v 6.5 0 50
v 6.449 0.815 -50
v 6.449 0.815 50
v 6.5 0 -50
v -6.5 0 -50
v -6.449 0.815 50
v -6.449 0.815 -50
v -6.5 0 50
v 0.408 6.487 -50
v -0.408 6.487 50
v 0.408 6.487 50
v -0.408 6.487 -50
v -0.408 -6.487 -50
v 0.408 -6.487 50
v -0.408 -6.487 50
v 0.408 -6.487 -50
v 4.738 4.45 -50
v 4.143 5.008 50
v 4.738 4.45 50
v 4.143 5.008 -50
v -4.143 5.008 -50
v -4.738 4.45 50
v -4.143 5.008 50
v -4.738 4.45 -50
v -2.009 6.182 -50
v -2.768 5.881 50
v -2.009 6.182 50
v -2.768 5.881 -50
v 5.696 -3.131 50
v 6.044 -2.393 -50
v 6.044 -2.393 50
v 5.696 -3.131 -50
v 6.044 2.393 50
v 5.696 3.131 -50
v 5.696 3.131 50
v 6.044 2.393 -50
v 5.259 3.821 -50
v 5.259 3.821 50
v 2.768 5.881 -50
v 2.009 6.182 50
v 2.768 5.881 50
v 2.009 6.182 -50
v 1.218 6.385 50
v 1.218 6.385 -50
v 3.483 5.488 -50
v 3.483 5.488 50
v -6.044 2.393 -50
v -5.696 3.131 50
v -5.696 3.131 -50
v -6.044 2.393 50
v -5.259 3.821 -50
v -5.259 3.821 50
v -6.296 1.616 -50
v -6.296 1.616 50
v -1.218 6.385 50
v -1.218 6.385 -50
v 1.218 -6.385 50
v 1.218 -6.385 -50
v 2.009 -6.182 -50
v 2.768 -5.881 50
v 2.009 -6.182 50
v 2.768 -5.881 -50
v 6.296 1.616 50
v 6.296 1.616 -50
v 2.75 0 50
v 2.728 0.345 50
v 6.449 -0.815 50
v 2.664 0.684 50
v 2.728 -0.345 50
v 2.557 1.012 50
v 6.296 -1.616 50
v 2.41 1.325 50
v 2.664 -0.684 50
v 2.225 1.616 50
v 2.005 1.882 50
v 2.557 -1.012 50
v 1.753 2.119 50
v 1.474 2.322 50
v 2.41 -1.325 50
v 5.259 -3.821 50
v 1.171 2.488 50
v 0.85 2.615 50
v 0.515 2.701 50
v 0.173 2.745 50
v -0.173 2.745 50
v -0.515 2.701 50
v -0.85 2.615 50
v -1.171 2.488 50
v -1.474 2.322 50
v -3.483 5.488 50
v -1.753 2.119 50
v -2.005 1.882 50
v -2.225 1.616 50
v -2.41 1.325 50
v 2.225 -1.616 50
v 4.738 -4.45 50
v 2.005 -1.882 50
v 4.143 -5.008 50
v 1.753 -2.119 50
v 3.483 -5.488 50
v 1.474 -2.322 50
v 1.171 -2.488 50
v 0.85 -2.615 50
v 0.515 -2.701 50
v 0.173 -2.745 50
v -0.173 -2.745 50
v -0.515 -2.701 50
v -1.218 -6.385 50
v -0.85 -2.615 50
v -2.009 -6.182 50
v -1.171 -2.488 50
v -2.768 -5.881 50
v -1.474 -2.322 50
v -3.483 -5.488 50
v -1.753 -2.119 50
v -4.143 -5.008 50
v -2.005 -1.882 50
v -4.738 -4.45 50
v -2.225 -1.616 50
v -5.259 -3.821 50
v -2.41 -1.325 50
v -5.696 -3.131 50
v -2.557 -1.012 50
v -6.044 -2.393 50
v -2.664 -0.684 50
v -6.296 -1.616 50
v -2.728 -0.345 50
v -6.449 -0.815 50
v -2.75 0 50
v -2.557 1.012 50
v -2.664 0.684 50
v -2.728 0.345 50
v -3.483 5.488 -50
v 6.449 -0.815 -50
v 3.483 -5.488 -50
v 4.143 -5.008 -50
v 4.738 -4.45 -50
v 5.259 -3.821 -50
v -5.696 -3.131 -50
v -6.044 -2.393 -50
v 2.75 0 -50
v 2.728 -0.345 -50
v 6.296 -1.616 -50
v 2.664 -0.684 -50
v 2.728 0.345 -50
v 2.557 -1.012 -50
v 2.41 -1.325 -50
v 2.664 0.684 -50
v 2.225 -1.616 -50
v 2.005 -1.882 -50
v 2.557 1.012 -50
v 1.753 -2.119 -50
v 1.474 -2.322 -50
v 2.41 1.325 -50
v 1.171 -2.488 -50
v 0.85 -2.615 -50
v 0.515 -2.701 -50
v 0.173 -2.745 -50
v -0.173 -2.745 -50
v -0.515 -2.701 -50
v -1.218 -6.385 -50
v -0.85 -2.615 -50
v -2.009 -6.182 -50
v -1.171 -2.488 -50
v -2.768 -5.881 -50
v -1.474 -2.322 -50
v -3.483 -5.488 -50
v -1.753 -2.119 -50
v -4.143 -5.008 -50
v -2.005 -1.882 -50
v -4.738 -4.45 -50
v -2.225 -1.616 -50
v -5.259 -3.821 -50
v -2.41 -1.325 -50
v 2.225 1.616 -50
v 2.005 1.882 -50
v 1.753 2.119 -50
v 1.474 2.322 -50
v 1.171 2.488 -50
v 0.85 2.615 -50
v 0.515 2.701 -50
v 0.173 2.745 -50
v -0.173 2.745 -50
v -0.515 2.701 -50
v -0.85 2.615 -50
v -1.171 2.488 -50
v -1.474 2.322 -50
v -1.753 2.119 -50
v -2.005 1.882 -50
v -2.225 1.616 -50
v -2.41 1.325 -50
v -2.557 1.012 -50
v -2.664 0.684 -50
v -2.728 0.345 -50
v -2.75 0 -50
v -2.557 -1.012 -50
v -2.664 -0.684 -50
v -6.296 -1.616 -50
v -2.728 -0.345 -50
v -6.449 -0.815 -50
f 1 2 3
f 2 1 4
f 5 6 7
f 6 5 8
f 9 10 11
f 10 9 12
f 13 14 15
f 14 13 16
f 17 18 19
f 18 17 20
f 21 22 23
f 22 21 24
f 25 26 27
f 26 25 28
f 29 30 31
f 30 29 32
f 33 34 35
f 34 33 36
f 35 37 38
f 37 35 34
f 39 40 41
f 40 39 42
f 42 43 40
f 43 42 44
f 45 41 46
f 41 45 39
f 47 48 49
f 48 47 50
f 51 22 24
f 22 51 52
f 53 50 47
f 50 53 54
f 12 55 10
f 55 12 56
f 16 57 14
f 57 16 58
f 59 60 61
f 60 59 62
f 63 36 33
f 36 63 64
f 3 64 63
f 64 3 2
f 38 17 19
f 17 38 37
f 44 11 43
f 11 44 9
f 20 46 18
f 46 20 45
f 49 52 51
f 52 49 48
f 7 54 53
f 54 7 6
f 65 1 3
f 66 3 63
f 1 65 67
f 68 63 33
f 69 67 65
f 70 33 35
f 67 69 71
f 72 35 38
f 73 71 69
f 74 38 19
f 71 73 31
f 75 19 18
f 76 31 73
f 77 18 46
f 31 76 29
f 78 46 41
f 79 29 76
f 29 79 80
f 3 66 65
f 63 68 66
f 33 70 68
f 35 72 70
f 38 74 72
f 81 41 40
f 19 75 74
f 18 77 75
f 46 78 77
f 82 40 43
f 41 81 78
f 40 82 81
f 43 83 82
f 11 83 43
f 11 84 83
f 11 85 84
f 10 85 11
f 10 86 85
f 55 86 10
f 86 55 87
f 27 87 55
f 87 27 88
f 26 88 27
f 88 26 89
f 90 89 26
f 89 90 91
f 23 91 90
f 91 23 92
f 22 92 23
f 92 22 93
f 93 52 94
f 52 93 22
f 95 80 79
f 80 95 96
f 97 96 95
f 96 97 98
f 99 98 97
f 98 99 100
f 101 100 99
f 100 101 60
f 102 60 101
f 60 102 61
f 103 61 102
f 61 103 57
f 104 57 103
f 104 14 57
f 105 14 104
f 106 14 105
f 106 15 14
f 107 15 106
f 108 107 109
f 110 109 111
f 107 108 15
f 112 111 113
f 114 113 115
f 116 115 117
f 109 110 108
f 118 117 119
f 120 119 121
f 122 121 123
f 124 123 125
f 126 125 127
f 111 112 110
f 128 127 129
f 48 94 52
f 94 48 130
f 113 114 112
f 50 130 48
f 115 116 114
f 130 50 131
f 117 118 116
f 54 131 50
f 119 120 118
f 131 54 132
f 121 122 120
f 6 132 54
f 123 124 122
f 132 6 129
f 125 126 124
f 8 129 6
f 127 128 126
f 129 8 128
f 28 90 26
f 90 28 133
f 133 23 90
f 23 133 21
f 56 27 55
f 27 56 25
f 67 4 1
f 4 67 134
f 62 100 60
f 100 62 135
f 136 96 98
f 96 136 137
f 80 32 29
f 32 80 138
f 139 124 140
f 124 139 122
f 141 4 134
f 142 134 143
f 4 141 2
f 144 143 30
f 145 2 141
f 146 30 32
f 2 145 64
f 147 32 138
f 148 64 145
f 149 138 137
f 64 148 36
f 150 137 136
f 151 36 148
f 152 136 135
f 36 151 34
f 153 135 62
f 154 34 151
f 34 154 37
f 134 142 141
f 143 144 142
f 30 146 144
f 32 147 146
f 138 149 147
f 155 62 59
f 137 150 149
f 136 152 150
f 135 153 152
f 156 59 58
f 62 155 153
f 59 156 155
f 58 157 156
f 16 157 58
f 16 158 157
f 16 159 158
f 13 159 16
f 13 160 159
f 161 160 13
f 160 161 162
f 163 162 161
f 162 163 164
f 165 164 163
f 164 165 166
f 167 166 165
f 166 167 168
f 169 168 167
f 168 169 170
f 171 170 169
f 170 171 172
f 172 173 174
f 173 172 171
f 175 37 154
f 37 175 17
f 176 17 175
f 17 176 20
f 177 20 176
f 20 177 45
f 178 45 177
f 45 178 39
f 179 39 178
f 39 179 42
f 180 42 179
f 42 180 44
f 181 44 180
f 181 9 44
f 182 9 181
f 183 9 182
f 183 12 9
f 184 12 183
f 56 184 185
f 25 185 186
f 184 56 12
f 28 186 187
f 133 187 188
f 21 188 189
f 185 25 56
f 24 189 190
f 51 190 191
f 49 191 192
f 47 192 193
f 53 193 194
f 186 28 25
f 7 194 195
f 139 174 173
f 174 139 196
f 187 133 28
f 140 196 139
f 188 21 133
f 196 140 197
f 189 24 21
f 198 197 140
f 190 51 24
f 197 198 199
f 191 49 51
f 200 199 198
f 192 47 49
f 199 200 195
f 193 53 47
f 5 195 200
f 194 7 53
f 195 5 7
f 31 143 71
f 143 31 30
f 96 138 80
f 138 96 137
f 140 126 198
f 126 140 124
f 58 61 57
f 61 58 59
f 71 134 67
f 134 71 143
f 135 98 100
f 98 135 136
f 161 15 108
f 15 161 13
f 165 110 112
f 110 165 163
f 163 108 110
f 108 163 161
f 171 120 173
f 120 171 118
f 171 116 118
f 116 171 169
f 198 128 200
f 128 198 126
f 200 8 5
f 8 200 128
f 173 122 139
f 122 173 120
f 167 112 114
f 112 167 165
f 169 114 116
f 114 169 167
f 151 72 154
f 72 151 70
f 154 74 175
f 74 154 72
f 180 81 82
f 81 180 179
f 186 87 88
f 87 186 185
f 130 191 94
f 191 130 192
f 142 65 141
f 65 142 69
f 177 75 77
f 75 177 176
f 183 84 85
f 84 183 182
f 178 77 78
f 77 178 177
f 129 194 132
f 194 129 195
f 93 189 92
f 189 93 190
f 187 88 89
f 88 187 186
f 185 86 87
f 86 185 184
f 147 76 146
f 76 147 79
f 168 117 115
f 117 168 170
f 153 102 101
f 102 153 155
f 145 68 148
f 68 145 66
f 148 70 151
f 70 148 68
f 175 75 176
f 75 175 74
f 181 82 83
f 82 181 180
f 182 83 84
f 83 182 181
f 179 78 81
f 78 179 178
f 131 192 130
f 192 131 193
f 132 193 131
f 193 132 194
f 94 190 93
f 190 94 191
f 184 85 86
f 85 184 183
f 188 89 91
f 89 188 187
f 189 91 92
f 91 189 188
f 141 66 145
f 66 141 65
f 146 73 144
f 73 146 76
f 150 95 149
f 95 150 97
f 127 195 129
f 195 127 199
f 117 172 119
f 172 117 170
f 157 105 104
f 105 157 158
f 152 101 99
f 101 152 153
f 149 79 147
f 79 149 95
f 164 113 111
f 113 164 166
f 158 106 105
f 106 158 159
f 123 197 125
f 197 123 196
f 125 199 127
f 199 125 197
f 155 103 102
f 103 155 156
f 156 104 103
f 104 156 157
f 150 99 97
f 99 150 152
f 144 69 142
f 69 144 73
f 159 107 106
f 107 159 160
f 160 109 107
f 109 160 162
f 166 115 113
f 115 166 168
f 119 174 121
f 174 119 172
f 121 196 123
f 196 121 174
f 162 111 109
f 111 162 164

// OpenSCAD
$fn = 50;


difference() {
	union() {
		translate(v = [0, 0, -50.0000000000]) {
			cylinder(h = 100, r = 6.5000000000);
		}
	}
	union() {
		translate(v = [0, 0, -100.0000000000]) {
			cylinder(h = 200, r = 2.7500000000);
		}
	}
}
